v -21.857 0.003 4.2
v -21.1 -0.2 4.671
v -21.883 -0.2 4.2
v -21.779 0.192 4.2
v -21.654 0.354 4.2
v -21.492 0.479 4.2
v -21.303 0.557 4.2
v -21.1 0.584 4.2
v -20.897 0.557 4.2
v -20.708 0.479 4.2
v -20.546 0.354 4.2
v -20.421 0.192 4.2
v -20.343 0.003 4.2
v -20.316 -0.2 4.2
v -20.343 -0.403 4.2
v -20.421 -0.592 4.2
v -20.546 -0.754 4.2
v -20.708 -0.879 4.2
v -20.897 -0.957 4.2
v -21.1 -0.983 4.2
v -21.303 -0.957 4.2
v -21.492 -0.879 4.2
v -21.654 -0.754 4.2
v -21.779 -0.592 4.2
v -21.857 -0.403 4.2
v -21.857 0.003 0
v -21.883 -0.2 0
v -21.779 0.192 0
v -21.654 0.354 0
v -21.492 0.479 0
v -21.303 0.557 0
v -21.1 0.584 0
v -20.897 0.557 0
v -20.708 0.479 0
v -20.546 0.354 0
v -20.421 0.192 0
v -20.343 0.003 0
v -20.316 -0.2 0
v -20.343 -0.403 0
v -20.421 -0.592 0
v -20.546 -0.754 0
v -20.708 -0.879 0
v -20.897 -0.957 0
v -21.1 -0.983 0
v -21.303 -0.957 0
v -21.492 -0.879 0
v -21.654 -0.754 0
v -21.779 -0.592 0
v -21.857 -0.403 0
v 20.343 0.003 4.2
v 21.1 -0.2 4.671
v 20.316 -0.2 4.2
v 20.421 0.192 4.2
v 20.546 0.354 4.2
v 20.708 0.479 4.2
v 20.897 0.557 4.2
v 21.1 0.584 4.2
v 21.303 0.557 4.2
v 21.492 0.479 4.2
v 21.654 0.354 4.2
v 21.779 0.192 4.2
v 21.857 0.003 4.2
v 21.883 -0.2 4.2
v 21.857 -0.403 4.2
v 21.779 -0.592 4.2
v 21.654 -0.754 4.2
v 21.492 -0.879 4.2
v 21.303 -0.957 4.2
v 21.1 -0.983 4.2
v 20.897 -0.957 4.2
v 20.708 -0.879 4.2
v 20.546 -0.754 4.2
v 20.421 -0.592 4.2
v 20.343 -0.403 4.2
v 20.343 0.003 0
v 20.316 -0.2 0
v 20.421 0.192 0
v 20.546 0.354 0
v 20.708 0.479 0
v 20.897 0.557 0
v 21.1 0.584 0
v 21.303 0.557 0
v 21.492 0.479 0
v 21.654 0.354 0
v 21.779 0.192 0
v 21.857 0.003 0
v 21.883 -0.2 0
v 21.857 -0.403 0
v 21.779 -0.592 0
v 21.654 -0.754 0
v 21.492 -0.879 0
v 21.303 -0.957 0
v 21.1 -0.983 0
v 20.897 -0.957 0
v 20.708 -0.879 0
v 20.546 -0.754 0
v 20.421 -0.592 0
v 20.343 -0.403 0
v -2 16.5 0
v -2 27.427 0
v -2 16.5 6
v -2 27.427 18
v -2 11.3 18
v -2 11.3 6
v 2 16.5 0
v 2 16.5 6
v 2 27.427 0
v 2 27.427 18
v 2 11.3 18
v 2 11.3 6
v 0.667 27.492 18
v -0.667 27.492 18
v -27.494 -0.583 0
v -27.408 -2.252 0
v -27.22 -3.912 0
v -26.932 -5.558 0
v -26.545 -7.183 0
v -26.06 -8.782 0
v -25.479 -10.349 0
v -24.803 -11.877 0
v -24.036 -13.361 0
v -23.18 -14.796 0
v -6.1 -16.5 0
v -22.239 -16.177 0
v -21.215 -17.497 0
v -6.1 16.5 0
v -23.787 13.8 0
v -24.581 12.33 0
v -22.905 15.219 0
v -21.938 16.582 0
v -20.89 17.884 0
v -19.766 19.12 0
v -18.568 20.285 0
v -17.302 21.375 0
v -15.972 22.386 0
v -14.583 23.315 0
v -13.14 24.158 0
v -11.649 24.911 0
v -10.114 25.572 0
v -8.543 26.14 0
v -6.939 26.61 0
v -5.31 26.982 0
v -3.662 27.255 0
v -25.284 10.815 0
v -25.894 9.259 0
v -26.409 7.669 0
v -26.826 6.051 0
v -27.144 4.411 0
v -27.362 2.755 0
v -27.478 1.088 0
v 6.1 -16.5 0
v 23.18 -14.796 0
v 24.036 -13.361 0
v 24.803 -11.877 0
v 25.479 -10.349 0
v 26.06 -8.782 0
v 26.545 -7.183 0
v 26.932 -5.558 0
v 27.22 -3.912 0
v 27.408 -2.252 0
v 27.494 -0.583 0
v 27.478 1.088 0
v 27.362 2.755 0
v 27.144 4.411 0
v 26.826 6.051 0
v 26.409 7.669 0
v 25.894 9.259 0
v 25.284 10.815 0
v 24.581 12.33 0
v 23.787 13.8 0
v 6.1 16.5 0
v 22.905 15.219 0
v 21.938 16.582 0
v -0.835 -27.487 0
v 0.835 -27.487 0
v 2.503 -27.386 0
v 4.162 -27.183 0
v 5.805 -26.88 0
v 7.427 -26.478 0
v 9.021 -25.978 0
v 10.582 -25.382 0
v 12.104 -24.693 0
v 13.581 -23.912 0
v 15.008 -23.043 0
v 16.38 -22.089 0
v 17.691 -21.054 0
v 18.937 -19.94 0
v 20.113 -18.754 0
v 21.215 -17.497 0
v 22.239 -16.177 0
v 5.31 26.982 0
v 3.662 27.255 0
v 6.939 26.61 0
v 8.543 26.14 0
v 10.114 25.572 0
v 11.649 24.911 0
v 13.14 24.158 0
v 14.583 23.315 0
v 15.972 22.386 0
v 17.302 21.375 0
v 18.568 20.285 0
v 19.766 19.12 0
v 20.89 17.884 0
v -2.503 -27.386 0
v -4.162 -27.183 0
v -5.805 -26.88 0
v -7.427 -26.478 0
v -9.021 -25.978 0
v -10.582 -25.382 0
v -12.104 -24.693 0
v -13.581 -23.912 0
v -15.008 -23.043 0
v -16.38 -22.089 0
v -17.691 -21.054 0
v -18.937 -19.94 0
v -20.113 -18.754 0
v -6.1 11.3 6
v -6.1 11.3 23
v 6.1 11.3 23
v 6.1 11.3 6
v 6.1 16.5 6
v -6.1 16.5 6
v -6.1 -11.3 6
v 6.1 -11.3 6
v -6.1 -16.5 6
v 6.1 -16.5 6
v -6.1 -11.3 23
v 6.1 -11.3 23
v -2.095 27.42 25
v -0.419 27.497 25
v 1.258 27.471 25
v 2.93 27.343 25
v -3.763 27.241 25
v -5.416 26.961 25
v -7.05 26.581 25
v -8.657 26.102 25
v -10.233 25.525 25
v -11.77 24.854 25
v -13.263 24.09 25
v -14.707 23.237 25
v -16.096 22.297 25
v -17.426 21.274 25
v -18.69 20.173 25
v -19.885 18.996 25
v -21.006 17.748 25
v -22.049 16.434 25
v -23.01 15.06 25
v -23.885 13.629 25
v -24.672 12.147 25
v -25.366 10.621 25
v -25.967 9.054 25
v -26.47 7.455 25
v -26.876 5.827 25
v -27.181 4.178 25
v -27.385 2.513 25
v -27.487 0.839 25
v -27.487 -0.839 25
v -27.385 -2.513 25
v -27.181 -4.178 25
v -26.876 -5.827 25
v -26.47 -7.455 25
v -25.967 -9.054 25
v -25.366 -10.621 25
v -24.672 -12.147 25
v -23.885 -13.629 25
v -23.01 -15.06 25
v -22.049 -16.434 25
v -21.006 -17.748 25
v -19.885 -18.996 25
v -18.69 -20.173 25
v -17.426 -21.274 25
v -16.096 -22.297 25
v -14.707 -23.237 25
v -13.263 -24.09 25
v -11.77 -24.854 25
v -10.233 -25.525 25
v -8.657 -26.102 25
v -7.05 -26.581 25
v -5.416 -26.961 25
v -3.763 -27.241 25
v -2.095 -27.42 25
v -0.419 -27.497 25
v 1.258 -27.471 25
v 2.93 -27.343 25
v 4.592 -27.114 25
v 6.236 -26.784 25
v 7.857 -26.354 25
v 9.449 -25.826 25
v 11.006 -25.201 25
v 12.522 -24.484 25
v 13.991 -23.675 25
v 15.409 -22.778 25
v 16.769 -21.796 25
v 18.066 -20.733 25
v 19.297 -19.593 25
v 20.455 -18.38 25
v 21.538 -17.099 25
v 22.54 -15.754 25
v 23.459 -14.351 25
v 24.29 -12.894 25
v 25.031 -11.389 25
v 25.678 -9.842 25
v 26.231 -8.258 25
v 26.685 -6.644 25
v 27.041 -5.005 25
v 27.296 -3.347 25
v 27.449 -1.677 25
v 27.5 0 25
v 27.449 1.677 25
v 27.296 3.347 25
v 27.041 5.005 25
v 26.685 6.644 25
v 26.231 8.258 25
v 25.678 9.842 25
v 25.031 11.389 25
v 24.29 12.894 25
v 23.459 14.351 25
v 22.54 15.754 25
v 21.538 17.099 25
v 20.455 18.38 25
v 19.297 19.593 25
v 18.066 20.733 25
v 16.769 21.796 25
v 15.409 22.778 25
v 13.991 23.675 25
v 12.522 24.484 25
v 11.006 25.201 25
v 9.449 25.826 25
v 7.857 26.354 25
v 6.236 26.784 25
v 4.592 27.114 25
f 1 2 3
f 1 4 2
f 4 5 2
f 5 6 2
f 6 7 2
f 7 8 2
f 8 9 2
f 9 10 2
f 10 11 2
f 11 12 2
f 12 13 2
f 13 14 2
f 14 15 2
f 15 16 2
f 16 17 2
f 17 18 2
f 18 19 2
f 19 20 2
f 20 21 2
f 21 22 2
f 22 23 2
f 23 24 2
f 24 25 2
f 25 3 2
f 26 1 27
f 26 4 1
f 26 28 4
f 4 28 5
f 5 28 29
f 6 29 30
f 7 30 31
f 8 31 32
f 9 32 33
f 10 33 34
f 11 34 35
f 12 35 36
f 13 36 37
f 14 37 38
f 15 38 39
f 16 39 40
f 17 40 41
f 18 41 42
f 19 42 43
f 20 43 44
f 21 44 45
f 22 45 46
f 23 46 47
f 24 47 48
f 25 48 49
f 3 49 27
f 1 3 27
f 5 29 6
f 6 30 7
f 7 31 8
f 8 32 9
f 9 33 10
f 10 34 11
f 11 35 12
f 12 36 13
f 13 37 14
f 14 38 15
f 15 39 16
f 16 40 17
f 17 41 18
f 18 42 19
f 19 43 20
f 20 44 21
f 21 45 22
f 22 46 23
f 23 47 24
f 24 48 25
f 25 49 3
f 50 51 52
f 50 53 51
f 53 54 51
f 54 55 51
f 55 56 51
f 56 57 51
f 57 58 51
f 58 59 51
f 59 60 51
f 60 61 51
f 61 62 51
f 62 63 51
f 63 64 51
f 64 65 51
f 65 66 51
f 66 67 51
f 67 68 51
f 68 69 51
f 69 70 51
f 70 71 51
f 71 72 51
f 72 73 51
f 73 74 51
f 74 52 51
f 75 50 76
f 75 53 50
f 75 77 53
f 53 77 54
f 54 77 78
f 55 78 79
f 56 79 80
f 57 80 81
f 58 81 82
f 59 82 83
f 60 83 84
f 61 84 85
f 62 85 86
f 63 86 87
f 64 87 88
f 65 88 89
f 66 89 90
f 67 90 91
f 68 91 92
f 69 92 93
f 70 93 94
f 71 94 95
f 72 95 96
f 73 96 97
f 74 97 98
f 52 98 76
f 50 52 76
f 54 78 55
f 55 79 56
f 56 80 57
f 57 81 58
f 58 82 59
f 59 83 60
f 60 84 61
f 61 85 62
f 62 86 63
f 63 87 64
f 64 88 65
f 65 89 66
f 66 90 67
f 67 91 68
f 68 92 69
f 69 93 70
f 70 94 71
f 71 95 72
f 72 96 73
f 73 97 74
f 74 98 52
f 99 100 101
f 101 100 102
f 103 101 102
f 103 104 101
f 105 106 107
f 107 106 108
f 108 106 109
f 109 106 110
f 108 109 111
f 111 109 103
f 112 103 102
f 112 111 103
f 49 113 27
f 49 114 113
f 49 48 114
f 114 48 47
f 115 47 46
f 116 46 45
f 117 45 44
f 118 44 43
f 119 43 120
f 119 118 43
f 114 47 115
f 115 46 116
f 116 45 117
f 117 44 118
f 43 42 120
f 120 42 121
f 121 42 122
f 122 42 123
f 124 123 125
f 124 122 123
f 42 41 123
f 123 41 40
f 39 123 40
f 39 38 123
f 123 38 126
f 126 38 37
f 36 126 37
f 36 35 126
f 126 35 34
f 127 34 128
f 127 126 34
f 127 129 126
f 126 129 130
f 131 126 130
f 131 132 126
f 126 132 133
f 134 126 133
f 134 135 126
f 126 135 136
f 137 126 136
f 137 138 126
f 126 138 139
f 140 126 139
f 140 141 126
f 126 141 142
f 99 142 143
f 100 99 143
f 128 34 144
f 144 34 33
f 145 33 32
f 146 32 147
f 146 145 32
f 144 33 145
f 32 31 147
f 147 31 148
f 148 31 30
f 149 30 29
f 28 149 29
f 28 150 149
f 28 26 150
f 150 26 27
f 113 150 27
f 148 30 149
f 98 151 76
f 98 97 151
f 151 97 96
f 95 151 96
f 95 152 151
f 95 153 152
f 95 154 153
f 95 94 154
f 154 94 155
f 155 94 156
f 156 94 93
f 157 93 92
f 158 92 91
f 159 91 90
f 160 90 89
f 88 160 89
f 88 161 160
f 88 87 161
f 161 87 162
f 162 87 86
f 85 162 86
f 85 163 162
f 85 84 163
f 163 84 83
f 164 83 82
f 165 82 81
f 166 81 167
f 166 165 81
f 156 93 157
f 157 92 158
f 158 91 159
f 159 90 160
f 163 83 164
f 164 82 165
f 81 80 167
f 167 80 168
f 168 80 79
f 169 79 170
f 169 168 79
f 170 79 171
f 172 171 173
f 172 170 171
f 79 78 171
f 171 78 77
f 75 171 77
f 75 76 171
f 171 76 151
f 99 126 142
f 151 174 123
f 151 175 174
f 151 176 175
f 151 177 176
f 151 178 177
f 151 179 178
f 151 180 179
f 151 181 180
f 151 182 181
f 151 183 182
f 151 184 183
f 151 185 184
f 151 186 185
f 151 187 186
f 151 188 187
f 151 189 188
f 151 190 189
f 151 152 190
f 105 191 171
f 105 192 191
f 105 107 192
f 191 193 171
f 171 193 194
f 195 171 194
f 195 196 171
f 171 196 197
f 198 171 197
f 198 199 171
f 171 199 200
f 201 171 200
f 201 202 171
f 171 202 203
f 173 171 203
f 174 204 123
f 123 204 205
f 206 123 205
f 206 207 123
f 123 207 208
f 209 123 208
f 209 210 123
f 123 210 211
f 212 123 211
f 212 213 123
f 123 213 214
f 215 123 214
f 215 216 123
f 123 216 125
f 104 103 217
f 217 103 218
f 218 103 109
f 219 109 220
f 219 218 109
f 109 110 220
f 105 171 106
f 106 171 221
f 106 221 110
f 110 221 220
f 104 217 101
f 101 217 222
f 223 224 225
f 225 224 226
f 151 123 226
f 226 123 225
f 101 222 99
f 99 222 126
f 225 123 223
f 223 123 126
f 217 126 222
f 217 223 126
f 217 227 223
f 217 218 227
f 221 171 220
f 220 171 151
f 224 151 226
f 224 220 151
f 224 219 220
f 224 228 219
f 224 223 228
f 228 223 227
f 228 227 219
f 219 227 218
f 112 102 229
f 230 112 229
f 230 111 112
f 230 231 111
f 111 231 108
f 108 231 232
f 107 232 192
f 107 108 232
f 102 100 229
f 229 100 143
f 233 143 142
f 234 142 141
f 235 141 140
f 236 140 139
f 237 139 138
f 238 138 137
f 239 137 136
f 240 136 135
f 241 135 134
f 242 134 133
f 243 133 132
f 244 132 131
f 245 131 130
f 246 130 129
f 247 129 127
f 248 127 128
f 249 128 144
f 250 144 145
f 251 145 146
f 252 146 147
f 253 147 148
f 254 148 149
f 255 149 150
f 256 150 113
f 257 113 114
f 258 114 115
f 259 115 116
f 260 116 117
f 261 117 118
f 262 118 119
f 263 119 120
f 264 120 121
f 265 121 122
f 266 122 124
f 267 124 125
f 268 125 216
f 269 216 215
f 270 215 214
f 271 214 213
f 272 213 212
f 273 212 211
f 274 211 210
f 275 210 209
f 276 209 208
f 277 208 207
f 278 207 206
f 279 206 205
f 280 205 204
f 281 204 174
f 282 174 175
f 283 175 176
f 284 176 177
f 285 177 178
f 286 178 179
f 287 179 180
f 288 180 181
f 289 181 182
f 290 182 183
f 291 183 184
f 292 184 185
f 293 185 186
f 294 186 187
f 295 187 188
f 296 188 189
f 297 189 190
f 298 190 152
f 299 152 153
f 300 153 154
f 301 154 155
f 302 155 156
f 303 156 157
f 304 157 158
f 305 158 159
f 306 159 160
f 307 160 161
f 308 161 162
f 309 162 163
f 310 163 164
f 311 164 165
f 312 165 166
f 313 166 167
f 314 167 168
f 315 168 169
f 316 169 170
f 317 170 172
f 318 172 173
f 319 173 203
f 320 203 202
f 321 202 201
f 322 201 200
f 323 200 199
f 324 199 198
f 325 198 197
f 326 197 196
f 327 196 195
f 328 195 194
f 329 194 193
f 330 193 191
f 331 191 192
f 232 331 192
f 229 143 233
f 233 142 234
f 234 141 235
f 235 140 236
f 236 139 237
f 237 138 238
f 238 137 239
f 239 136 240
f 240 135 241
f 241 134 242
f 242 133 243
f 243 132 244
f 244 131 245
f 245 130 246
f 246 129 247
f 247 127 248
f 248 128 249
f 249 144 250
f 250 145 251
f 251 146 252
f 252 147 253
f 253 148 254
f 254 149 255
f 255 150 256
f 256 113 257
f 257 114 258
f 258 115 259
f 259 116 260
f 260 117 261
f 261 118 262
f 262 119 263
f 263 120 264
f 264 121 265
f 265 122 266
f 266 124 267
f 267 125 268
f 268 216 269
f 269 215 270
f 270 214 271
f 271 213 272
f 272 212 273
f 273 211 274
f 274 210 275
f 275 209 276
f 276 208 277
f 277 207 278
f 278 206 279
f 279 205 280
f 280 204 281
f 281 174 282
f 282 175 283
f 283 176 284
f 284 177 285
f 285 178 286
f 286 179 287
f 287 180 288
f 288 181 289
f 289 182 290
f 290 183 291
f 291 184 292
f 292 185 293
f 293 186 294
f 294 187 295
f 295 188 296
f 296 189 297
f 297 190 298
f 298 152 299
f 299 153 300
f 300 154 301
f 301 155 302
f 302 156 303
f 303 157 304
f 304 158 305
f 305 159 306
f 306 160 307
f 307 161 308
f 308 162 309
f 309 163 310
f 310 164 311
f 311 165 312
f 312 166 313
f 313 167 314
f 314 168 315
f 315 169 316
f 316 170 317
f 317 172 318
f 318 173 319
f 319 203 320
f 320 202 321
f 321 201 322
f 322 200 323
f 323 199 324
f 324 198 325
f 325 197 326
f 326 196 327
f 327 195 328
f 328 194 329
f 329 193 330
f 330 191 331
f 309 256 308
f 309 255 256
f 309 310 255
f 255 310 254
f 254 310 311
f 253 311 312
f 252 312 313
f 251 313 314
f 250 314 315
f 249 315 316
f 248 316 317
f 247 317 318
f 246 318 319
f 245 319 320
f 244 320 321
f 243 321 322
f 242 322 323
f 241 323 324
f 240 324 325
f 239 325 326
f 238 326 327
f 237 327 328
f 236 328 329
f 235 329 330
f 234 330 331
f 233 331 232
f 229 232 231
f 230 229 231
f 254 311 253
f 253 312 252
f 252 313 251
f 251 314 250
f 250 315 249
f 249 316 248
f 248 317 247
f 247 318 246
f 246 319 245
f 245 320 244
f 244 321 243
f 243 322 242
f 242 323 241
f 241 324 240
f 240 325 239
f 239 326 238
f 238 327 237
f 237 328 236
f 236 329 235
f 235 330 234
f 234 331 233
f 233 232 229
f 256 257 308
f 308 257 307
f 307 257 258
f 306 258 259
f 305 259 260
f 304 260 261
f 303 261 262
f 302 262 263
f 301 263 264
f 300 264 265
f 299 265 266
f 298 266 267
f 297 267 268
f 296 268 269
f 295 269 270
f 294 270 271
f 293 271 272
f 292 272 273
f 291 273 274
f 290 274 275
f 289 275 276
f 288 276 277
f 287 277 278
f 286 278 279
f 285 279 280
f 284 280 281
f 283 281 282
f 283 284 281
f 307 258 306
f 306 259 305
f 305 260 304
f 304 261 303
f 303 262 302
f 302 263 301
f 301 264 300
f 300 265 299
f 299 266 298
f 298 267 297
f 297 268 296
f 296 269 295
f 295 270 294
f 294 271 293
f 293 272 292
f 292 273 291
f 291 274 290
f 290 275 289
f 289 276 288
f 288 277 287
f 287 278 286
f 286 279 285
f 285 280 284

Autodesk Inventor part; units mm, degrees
ref_plane "YZ Plane" through (0, 0, 0) normal (1, 0, 0) x (0, 1, 0)
ref_plane "XZ Plane" through (0, 0, 0) normal (0, 1, 0) x (-1, 0, 0)
ref_plane "XY Plane" through (0, 0, 0) normal (0, 0, 1) x (1, 0, 0)
sketch "Sketch1" plane through (0, 0, 0) normal (0, 0, 1) x (1, 0, 0)
  circle A0 centre (0, 0) radius 27.5
  dimension "d0" = 55
extrude "Extrusion1" add sketch "Sketch1" along normal blind 25
sketch "Sketch2" plane through (0, 0, 0) normal (0, 0, -1) x (-1, 0, 0)
  line L0 (6.1, -11.3) -> (-6.1, -11.3)
  line L1 (-6.1, -11.3) -> (-6.1, 11.3)
  line L2 (-6.1, 11.3) -> (6.1, 11.3)
  line L3 (6.1, 11.3) -> (6.1, -11.3)
  circle A0 centre (0, 0) radius 27.5 projected
  dimension "d4" = 12.2
  dimension "d5" = 55
  dimension "d6" = 22.6
  dimension "d7" = 6.1
  dimension "d8" = 11.3
extrude "Extrusion2" cut sketch "Sketch2" against normal blind 23 contours L0 L1 L2 L3
sketch "Sketch3" plane through (0, 0, 0) normal (0, 0, -1) x (-1, 0, 0)
  line L0 (-6.1, 11.3) -> (6.1, 11.3) projected
  line L1 (6.1, -11.3) -> (-6.1, -11.3) projected
  line L2 (6.1, 11.3) -> (6.1, -11.3) projected
  line L3 (-6.1, -11.3) -> (-6.1, 11.3) projected
  line L4 (6.1, -16.5) -> (-6.1, -16.5)
  line L5 (-6.1, -16.5) -> (-6.1, 16.5)
  line L6 (-6.1, 16.5) -> (6.1, 16.5)
  line L7 (6.1, 16.5) -> (6.1, -16.5)
  point P0 (0, 0)
  dimension "d11" = 22.6
  dimension "d12" = 12.2
  dimension "d13" = 5.2
  dimension "d14" = 5.2
extrude "Extrusion3" cut sketch "Sketch3" against normal blind 6 contours L5 L6 L7 L0 | L1 L7 L4 L5
sketch "Sketch4" plane through (0, 0, 0) normal (0, 0, -1) x (-1, 0, 0)
  line L0 (-6.1, -16.5) -> (-6.1, 16.5) projected
  line L1 (6.1, 16.5) -> (6.1, -16.5) projected
  line L2 (-6.1, 16.5) -> (6.1, 16.5) projected
  line L3 (6.1, -16.5) -> (-6.1, -16.5) projected
  line L4 (6.1, 11.3) -> (-6.1, 11.3) projected
  line L5 (-6.1, -11.3) -> (6.1, -11.3) projected
  line L6 (-6.1, 16.5) -> (6.1, 16.5) projected
  line L7 (2, 16.5) -> (2, 27.4272)
  circle A0 centre (0, 0) radius 27.5 projected
  line L8 (-2, 16.5) -> (-2, 27.4272)
  arc A1 (2, 27.4272) -> (-2, 27.4272) centre (0, 0) ccw
  line L9 (2, 16.5) -> (2, 11.3)
  line L10 (-2, 16.5) -> (-2, 11.3)
  dimension "d17" = 12.2
  dimension "d18" = 33
  dimension "d19" = 22.6
  dimension "d20" = 4
  dimension "d21" = 4.1
extrude "Extrusion4" cut sketch "Sketch4" against normal blind 18 contours L10 L2 L9 L4 | L8 A0 L7 L2
hole "Hole2" at (21.1, -0.2, 0) direction (0, 0, 1) diameter 1.567 depth 4.2 tip angle 118 thread size "M2x0.4" class "6H" standard "ANSI Metric M Profile"
hole "Hole3" at (-21.1, -0.2, 0) direction (0, 0, 1) diameter 1.567 depth 4.2 tip angle 118 thread size "M2x0.4" class "6H" standard "ANSI Metric M Profile"
properties part number "speaker_base"
